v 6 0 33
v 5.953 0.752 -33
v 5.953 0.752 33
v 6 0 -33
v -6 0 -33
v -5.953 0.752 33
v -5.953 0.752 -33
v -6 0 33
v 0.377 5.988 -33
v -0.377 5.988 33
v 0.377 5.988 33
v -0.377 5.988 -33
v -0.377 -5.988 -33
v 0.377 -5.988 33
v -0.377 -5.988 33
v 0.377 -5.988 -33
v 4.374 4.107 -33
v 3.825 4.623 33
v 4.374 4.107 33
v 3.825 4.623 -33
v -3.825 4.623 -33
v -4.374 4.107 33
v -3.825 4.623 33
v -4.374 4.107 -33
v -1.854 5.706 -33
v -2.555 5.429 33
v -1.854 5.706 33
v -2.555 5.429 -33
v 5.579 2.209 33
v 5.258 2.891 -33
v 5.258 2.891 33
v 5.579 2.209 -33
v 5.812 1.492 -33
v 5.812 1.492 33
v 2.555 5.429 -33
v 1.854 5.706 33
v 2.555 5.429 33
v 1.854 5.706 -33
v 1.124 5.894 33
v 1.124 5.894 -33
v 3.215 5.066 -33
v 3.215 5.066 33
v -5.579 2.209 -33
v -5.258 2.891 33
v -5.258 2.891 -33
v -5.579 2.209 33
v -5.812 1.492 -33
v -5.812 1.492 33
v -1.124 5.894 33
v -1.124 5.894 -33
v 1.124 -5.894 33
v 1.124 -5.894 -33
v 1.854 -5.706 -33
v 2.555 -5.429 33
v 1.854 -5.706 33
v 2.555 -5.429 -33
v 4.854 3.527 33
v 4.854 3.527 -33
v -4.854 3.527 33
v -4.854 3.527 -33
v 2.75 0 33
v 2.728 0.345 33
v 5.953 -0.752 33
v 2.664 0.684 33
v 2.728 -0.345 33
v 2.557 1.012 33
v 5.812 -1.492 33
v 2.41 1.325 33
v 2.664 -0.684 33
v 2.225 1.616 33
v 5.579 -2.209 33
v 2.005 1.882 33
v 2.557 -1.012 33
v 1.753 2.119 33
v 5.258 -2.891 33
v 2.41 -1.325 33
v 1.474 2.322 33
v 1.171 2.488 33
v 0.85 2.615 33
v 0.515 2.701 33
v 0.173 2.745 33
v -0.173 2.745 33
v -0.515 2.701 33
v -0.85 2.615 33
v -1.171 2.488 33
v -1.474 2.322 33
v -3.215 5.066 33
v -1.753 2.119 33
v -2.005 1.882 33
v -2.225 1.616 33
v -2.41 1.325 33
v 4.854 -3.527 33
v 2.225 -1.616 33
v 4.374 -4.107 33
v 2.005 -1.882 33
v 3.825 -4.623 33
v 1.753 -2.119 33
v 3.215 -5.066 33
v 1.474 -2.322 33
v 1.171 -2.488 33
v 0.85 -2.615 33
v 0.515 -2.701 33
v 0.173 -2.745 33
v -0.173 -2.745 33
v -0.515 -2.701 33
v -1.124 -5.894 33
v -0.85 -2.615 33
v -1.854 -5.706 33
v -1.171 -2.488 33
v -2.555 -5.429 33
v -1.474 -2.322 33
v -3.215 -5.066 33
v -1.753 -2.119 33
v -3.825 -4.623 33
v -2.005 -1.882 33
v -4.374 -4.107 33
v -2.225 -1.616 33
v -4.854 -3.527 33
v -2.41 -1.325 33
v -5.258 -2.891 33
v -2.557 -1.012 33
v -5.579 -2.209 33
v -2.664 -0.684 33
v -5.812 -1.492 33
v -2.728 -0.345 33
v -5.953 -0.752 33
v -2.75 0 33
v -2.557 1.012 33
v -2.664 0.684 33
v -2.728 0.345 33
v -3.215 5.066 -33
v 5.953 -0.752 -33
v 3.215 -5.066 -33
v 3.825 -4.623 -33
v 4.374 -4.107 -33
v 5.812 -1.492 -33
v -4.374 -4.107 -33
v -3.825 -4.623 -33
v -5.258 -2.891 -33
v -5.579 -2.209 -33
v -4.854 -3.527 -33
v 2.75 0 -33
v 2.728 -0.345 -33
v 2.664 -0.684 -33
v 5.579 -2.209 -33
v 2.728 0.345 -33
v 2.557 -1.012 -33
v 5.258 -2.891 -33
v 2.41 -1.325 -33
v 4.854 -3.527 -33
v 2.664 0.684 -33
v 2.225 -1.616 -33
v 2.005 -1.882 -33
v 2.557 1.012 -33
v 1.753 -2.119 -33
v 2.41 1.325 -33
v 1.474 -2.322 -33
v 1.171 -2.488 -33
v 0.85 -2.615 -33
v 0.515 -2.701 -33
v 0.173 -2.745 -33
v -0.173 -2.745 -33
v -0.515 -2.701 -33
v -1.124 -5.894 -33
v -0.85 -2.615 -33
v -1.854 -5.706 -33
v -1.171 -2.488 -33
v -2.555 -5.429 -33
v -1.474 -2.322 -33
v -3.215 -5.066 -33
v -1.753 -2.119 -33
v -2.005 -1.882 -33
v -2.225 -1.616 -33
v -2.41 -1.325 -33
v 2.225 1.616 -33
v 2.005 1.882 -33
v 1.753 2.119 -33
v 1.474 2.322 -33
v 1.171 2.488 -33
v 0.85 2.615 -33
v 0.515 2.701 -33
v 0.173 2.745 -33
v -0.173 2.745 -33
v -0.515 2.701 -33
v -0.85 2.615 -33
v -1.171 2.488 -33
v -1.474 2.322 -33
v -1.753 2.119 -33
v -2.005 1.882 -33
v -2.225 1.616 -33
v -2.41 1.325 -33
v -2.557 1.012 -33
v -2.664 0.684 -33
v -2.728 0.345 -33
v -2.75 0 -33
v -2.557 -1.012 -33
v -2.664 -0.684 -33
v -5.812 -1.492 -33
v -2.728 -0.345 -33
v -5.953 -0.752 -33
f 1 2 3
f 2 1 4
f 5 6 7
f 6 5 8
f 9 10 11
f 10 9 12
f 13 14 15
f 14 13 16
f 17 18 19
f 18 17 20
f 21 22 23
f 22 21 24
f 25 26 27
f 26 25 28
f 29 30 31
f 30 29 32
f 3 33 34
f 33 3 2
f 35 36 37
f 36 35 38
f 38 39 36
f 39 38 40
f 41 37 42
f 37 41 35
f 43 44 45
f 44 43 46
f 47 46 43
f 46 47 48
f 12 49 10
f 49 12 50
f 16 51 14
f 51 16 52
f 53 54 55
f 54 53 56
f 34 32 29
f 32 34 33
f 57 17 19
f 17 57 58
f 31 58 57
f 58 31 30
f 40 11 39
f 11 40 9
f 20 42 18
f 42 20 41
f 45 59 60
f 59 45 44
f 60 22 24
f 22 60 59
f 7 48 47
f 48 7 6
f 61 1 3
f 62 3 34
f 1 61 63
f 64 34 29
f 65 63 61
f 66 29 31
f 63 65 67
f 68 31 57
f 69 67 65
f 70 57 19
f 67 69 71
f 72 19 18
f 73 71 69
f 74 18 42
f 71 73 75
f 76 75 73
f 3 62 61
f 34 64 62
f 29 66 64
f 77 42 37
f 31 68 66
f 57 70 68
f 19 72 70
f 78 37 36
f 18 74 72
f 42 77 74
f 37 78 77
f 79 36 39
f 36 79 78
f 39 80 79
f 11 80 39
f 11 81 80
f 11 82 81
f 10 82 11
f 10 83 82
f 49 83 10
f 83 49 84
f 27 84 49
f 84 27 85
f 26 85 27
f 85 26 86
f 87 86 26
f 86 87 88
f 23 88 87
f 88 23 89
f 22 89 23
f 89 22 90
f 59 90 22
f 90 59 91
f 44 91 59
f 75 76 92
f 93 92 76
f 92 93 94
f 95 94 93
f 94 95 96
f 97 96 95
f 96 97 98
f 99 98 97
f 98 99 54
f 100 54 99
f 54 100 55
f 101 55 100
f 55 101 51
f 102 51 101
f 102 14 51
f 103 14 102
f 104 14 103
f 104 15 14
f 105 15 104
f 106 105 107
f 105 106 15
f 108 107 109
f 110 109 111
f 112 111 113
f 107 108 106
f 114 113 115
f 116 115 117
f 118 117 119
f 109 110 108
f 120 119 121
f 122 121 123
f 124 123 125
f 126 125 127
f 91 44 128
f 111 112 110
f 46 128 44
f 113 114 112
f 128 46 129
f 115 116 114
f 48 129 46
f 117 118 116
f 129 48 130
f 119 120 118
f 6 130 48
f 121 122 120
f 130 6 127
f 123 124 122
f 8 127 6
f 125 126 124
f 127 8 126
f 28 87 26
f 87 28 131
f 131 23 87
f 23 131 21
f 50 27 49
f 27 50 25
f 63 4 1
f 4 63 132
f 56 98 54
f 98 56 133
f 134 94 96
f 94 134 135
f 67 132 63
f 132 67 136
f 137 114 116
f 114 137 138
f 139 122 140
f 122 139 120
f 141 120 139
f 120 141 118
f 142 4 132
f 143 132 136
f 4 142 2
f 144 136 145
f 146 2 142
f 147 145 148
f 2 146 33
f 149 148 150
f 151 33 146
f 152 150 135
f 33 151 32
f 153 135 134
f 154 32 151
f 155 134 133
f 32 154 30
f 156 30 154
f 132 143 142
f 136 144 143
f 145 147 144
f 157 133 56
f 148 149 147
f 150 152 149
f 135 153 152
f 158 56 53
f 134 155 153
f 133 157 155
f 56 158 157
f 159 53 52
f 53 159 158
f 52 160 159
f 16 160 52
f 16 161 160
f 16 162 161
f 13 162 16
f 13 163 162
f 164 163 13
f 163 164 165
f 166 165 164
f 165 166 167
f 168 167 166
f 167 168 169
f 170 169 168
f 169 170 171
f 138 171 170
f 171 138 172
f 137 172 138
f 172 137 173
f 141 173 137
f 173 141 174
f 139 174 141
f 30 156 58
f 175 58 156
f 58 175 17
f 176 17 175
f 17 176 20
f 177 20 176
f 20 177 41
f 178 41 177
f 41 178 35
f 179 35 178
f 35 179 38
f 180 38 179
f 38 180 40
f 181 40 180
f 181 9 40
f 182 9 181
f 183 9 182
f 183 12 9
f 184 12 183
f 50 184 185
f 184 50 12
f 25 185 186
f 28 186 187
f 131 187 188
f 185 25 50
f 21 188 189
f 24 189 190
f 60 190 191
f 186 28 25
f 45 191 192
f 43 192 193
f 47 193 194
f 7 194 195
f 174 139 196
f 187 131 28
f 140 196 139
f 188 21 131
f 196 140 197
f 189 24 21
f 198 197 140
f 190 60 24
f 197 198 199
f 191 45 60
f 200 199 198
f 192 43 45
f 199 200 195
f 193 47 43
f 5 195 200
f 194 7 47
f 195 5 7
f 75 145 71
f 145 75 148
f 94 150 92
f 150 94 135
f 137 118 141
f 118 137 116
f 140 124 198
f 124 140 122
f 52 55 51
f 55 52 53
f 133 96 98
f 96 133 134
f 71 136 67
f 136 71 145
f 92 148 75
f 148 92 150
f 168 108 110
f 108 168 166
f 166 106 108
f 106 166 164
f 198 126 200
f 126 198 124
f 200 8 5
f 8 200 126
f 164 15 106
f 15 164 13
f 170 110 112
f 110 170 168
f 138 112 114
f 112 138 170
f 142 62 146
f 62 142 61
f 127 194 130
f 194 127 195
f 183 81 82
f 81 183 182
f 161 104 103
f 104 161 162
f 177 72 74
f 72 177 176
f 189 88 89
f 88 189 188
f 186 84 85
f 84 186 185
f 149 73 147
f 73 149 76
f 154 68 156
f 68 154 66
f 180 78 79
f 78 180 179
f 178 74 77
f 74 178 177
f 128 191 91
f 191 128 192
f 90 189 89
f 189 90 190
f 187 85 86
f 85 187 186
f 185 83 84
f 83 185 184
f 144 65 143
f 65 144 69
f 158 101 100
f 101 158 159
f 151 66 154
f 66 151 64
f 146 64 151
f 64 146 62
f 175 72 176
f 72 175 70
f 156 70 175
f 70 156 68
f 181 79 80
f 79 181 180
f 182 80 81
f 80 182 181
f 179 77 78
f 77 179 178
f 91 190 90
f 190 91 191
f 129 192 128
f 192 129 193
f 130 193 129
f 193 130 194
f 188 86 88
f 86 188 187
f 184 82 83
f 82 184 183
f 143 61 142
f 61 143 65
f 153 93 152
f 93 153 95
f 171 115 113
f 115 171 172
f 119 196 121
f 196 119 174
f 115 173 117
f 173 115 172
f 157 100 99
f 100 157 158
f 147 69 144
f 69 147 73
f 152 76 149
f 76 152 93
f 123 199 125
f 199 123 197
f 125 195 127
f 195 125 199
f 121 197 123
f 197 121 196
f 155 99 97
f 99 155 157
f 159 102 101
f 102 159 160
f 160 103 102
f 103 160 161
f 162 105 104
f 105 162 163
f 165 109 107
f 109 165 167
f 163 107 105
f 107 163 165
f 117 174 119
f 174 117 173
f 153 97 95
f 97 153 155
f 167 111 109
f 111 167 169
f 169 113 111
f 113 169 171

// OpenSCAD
$fn = 50;


difference() {
	union() {
		translate(v = [0, 0, -33.0000000000]) {
			cylinder(h = 66, r = 6.0000000000);
		}
	}
	union() {
		translate(v = [0, 0, -100.0000000000]) {
			cylinder(h = 200, r = 2.7500000000);
		}
	}
}
